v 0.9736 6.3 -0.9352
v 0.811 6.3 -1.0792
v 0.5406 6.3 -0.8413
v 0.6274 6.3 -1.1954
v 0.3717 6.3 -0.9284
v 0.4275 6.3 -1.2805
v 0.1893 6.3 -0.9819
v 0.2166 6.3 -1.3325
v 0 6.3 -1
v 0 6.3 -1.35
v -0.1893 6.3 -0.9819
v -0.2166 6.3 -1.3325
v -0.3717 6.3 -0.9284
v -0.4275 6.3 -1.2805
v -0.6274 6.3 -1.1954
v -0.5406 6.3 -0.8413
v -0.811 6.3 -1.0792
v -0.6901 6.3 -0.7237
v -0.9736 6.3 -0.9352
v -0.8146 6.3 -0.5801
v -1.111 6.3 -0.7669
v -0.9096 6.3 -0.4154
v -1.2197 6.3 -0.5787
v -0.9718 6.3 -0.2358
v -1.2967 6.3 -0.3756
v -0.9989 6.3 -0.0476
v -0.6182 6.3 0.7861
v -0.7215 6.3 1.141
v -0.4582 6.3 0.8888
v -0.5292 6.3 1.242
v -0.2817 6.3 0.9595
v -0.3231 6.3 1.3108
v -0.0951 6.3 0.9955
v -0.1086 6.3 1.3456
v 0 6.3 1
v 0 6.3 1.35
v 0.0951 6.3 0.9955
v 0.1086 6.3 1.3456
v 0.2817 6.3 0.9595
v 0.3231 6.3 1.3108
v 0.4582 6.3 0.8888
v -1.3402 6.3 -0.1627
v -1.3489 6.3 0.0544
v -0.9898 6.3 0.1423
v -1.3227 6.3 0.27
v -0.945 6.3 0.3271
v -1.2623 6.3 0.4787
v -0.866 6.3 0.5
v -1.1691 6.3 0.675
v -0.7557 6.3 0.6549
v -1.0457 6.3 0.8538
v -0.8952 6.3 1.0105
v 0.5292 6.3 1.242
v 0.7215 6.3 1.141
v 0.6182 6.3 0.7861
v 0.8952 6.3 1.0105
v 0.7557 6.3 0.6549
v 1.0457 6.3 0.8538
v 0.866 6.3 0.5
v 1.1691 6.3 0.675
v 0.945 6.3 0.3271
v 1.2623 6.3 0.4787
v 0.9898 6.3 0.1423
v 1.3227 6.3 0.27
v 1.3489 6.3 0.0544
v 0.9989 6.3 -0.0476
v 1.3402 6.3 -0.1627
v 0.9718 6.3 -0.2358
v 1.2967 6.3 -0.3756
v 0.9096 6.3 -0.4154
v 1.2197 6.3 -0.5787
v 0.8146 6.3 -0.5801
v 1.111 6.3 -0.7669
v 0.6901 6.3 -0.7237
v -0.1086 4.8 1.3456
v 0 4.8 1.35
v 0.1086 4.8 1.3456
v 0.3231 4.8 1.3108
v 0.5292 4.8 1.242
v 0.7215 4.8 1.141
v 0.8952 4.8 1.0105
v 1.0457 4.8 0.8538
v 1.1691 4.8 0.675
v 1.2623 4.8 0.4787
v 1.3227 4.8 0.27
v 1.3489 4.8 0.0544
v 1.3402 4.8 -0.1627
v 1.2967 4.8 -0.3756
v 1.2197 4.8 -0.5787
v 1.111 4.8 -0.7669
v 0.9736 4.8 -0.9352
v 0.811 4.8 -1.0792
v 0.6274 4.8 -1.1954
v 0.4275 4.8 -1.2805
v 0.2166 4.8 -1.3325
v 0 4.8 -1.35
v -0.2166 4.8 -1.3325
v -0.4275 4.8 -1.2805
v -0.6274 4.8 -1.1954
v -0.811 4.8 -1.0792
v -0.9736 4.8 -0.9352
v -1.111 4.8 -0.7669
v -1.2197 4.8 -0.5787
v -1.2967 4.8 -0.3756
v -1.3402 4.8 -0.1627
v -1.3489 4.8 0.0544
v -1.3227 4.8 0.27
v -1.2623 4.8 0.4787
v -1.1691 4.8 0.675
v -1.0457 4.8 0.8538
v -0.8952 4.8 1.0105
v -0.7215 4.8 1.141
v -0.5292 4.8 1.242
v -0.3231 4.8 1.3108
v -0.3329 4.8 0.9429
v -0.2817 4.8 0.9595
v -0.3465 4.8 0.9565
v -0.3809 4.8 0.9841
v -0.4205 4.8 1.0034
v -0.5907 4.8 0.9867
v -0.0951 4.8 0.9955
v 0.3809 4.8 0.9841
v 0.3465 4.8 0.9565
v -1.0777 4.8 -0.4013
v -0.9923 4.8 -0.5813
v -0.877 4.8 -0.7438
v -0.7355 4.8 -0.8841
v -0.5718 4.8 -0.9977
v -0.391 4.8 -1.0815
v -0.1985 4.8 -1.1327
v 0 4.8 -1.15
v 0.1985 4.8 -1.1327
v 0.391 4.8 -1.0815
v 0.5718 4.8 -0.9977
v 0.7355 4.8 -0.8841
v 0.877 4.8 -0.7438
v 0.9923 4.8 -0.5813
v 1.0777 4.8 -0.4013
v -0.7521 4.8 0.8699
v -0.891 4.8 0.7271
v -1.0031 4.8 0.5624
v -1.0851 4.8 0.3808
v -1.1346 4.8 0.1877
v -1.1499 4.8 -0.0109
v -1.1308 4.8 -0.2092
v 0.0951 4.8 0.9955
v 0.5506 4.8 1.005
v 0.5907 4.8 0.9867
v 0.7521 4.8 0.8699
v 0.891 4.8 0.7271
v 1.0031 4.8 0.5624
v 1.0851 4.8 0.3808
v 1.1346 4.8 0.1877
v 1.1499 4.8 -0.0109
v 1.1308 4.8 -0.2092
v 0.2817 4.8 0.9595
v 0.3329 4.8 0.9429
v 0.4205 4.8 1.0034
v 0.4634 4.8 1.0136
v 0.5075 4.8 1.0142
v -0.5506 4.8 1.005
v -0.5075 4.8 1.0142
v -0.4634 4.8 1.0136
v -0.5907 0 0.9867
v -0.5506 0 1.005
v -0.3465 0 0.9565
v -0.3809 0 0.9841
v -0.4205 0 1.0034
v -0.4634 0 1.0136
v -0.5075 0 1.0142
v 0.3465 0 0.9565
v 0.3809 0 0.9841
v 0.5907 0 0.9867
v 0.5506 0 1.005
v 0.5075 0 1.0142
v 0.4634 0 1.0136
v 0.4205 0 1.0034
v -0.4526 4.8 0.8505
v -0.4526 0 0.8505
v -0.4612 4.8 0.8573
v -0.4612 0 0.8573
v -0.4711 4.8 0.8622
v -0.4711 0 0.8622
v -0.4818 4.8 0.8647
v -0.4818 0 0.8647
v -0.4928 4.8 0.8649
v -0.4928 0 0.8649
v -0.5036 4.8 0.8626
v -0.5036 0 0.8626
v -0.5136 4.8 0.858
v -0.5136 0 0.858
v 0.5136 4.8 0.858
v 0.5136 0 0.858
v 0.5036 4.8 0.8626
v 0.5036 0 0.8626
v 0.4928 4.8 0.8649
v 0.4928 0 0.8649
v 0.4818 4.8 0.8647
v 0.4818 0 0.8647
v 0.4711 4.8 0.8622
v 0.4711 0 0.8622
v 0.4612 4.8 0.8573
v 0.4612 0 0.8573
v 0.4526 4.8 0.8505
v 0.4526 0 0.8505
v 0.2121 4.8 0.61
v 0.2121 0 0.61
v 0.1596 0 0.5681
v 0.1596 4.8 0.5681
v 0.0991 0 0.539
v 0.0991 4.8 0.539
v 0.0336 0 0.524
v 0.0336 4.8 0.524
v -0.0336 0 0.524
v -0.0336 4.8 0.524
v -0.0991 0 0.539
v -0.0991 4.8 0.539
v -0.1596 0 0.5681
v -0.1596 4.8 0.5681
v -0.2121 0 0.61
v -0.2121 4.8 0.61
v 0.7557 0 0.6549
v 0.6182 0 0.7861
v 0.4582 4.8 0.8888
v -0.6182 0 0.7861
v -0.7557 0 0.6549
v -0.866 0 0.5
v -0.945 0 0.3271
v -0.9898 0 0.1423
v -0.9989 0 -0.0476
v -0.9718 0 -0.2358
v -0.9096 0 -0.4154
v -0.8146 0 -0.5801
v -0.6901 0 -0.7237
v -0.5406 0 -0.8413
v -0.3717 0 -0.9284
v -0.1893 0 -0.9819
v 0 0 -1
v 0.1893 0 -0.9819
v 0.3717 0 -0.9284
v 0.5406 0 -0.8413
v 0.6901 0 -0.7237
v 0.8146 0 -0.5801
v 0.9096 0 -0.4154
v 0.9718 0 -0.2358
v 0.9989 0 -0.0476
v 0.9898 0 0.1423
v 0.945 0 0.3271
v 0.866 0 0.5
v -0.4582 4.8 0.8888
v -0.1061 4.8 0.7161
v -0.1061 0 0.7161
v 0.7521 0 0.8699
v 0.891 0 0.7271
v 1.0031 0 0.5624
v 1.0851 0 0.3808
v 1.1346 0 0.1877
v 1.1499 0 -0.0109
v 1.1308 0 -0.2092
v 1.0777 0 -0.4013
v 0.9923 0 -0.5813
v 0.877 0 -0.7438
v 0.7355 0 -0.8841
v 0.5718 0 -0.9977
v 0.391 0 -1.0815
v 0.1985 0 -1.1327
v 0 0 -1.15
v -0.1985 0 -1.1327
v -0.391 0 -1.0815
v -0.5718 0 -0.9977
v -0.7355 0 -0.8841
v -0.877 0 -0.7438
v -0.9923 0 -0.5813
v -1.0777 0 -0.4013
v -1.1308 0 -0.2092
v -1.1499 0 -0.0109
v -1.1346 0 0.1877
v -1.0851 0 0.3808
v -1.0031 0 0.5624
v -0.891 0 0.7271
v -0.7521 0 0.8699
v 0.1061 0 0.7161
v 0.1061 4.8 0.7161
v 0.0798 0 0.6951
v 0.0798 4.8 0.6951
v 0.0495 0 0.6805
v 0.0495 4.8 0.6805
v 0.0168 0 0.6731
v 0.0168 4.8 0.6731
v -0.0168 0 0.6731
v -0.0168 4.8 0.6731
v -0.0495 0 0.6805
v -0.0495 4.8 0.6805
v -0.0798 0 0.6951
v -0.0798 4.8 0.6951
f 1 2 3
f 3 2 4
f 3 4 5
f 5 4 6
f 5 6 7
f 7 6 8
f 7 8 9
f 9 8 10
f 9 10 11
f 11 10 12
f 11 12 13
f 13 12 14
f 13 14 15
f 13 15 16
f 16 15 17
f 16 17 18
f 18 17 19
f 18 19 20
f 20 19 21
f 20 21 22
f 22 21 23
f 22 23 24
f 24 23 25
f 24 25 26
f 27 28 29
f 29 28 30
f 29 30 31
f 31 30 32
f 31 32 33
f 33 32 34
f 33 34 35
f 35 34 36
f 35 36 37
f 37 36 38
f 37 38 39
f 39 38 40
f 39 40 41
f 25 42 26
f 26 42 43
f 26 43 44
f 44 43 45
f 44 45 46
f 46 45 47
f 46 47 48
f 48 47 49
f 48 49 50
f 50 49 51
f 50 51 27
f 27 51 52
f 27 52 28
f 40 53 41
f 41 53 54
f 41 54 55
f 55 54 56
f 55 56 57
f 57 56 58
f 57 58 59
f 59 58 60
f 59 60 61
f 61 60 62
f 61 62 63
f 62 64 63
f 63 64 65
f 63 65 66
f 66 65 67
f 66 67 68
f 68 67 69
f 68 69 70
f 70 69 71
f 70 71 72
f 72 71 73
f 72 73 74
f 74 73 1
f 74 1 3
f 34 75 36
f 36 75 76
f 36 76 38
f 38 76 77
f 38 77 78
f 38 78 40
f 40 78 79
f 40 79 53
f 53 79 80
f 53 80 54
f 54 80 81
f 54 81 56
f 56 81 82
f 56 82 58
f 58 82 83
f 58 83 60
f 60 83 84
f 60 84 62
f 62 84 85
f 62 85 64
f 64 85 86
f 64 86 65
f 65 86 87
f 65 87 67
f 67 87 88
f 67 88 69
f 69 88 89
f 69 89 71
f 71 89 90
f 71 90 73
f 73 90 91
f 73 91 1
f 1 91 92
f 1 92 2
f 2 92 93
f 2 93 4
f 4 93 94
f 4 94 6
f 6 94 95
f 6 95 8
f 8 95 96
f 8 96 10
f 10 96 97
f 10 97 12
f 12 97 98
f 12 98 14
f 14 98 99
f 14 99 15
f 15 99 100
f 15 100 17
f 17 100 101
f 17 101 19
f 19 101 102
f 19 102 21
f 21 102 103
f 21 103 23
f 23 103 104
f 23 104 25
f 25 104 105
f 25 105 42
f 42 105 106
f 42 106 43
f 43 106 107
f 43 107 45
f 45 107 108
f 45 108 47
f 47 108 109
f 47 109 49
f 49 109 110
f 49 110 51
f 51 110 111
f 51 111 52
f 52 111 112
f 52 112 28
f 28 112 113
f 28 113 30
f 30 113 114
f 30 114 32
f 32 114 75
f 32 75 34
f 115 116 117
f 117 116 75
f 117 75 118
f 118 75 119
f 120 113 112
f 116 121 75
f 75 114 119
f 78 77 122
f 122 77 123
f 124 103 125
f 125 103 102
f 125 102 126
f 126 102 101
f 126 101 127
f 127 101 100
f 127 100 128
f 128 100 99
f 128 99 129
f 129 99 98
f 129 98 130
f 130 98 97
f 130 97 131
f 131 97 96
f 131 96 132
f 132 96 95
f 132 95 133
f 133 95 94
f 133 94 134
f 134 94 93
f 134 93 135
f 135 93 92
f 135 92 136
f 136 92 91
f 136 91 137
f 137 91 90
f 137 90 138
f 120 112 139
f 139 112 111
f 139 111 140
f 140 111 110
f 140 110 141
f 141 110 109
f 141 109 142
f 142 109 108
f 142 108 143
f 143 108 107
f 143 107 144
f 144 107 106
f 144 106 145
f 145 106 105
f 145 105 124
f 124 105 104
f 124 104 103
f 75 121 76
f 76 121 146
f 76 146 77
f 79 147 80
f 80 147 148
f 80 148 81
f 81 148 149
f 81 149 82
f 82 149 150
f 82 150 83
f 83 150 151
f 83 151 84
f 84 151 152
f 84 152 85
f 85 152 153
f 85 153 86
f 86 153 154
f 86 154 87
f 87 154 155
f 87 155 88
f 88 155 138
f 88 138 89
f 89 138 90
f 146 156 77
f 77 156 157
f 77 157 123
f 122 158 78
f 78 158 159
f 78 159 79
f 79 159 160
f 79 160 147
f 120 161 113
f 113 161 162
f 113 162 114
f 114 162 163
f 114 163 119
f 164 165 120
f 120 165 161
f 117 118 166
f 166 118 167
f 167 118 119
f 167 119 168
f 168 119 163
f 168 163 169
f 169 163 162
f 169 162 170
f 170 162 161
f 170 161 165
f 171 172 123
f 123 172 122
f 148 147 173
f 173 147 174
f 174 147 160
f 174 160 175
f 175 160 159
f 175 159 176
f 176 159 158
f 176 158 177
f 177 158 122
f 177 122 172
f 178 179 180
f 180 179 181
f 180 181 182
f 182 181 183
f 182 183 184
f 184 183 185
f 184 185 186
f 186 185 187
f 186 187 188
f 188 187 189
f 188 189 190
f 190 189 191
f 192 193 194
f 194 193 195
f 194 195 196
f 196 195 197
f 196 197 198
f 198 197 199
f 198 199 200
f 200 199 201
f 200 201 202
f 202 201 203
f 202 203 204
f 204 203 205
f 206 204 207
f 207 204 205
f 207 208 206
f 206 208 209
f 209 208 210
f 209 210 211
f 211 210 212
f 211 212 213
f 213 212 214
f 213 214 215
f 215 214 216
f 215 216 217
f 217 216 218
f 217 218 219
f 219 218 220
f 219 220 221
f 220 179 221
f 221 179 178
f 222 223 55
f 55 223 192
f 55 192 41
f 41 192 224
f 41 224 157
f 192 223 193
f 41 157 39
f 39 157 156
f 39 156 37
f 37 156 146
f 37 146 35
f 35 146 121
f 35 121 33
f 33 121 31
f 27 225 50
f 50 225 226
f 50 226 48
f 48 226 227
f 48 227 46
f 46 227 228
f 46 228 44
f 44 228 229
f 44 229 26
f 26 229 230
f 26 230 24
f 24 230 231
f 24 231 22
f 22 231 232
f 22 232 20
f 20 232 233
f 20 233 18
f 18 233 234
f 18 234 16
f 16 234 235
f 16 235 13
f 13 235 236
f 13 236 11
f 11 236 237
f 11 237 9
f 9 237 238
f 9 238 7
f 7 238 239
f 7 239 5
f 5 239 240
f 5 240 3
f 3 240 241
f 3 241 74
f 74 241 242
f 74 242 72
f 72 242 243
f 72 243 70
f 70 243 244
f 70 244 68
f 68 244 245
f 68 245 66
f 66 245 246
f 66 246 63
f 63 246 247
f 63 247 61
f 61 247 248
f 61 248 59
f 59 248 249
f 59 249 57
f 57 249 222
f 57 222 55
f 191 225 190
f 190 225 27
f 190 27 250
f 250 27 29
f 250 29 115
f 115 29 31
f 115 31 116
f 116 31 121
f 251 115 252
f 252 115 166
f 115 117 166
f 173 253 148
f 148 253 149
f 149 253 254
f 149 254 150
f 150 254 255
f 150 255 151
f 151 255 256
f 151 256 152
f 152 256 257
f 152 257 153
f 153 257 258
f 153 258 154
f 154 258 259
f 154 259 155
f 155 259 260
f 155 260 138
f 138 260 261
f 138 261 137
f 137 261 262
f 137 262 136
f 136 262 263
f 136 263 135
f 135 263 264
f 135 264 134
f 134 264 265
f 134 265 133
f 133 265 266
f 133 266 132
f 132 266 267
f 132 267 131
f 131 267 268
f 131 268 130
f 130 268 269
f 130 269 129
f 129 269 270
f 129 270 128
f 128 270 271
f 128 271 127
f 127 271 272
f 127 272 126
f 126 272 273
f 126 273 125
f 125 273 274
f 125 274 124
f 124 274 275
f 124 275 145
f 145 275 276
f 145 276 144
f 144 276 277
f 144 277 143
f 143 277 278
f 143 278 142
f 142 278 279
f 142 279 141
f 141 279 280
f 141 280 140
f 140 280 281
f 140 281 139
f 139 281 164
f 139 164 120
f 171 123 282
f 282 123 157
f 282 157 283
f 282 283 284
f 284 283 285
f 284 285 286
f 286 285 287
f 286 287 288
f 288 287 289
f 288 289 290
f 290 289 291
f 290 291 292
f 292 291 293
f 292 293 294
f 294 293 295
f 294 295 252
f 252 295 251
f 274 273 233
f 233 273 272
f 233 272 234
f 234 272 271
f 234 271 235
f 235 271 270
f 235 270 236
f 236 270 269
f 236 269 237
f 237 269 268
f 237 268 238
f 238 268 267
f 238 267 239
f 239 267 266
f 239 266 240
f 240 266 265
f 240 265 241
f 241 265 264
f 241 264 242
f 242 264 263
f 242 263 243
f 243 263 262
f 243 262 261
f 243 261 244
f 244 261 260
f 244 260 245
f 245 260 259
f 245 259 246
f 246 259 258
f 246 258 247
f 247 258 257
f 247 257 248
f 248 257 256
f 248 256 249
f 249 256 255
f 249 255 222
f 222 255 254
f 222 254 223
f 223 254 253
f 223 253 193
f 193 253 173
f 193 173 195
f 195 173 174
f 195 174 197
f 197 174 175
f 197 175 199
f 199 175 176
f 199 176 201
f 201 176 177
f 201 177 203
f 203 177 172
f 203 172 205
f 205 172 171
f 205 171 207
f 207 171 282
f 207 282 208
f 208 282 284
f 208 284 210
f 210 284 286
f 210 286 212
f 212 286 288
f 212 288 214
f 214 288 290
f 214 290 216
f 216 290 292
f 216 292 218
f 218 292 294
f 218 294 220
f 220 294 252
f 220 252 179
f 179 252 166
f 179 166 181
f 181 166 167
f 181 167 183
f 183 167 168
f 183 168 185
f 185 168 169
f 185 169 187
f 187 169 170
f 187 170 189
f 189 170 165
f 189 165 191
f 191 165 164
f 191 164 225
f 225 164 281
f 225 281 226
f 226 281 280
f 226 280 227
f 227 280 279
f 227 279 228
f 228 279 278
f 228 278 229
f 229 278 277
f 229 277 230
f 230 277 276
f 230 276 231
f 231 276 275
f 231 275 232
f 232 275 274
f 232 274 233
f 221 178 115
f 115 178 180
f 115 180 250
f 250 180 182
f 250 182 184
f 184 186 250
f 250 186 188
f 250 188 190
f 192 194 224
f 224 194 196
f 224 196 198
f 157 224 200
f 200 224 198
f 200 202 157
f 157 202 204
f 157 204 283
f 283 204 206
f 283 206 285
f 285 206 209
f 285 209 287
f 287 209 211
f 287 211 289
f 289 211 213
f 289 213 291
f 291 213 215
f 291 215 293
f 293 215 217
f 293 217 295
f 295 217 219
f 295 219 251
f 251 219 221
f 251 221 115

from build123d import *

# Parameters (mm, degrees)
BOSS_EXTRUDE1_DEPTH = 4.8
FILLET1_R           = 0.05
FILLET2_R           = 0.2
SKETCH2_R           = 1.35
SKETCH2_R_2         = 1
BOSS_EXTRUDE2_DEPTH = 1.5


with BuildPart() as part:
    # Sketch1 → Boss-Extrude1 (new body)
    with BuildSketch(Plane(origin=(0, 0, 0), x_dir=(1, 0, 0), z_dir=(0, 1, 0))):
        with BuildLine():
            Line((-0.448807004, -1.058807004), (-0.106066017, -0.716066017))
            ThreePointArc((-0.106066017, -0.716066017), (0, -0.672132034), (0.106066017, -0.716066017))
            Line((0.106066017, -0.716066017), (0.448807004, -1.058807004))
            ThreePointArc((0.448807004, -1.058807004), (0, 1.15), (-0.448807004, -1.058807004))
        make_face()
        with BuildLine():
            Line((-0.479612457, -0.877480422), (-0.212132034, -0.61))
            ThreePointArc((-0.212132034, -0.61), (0, -0.522132034), (0.212132034, -0.61))
            Line((0.212132034, -0.61), (0.479612457, -0.877480422))
            ThreePointArc((0.479612457, -0.877480422), (0, 1), (-0.479612457, -0.877480422))
        make_face(mode=Mode.SUBTRACT)
    extrude(amount=BOSS_EXTRUDE1_DEPTH)

    # Fillet1
    fillet1_edges = [part.edges().sort_by_distance(p)[0] for p in [
        (0.479612457, 2.4, 0.877480422),
        (-0.479612457, 2.4, 0.877480422),
    ]]
    fillet(fillet1_edges, radius=FILLET1_R)

    # Fillet2
    fillet2_edges = [part.edges().sort_by_distance(p)[0] for p in [
        (-0.448807004, 2.4, 1.058807004),
        (0.448807004, 2.4, 1.058807004),
    ]]
    fillet(fillet2_edges, radius=FILLET2_R)

    # Sketch2 → Boss-Extrude2 (add)
    with BuildSketch(Plane(origin=(0, 4.8, 0), x_dir=(1, 0, 0), z_dir=(0, 1, 0))):
        Circle(SKETCH2_R)
        Circle(SKETCH2_R_2, mode=Mode.SUBTRACT)
    extrude(amount=BOSS_EXTRUDE2_DEPTH)


solid = part.part
